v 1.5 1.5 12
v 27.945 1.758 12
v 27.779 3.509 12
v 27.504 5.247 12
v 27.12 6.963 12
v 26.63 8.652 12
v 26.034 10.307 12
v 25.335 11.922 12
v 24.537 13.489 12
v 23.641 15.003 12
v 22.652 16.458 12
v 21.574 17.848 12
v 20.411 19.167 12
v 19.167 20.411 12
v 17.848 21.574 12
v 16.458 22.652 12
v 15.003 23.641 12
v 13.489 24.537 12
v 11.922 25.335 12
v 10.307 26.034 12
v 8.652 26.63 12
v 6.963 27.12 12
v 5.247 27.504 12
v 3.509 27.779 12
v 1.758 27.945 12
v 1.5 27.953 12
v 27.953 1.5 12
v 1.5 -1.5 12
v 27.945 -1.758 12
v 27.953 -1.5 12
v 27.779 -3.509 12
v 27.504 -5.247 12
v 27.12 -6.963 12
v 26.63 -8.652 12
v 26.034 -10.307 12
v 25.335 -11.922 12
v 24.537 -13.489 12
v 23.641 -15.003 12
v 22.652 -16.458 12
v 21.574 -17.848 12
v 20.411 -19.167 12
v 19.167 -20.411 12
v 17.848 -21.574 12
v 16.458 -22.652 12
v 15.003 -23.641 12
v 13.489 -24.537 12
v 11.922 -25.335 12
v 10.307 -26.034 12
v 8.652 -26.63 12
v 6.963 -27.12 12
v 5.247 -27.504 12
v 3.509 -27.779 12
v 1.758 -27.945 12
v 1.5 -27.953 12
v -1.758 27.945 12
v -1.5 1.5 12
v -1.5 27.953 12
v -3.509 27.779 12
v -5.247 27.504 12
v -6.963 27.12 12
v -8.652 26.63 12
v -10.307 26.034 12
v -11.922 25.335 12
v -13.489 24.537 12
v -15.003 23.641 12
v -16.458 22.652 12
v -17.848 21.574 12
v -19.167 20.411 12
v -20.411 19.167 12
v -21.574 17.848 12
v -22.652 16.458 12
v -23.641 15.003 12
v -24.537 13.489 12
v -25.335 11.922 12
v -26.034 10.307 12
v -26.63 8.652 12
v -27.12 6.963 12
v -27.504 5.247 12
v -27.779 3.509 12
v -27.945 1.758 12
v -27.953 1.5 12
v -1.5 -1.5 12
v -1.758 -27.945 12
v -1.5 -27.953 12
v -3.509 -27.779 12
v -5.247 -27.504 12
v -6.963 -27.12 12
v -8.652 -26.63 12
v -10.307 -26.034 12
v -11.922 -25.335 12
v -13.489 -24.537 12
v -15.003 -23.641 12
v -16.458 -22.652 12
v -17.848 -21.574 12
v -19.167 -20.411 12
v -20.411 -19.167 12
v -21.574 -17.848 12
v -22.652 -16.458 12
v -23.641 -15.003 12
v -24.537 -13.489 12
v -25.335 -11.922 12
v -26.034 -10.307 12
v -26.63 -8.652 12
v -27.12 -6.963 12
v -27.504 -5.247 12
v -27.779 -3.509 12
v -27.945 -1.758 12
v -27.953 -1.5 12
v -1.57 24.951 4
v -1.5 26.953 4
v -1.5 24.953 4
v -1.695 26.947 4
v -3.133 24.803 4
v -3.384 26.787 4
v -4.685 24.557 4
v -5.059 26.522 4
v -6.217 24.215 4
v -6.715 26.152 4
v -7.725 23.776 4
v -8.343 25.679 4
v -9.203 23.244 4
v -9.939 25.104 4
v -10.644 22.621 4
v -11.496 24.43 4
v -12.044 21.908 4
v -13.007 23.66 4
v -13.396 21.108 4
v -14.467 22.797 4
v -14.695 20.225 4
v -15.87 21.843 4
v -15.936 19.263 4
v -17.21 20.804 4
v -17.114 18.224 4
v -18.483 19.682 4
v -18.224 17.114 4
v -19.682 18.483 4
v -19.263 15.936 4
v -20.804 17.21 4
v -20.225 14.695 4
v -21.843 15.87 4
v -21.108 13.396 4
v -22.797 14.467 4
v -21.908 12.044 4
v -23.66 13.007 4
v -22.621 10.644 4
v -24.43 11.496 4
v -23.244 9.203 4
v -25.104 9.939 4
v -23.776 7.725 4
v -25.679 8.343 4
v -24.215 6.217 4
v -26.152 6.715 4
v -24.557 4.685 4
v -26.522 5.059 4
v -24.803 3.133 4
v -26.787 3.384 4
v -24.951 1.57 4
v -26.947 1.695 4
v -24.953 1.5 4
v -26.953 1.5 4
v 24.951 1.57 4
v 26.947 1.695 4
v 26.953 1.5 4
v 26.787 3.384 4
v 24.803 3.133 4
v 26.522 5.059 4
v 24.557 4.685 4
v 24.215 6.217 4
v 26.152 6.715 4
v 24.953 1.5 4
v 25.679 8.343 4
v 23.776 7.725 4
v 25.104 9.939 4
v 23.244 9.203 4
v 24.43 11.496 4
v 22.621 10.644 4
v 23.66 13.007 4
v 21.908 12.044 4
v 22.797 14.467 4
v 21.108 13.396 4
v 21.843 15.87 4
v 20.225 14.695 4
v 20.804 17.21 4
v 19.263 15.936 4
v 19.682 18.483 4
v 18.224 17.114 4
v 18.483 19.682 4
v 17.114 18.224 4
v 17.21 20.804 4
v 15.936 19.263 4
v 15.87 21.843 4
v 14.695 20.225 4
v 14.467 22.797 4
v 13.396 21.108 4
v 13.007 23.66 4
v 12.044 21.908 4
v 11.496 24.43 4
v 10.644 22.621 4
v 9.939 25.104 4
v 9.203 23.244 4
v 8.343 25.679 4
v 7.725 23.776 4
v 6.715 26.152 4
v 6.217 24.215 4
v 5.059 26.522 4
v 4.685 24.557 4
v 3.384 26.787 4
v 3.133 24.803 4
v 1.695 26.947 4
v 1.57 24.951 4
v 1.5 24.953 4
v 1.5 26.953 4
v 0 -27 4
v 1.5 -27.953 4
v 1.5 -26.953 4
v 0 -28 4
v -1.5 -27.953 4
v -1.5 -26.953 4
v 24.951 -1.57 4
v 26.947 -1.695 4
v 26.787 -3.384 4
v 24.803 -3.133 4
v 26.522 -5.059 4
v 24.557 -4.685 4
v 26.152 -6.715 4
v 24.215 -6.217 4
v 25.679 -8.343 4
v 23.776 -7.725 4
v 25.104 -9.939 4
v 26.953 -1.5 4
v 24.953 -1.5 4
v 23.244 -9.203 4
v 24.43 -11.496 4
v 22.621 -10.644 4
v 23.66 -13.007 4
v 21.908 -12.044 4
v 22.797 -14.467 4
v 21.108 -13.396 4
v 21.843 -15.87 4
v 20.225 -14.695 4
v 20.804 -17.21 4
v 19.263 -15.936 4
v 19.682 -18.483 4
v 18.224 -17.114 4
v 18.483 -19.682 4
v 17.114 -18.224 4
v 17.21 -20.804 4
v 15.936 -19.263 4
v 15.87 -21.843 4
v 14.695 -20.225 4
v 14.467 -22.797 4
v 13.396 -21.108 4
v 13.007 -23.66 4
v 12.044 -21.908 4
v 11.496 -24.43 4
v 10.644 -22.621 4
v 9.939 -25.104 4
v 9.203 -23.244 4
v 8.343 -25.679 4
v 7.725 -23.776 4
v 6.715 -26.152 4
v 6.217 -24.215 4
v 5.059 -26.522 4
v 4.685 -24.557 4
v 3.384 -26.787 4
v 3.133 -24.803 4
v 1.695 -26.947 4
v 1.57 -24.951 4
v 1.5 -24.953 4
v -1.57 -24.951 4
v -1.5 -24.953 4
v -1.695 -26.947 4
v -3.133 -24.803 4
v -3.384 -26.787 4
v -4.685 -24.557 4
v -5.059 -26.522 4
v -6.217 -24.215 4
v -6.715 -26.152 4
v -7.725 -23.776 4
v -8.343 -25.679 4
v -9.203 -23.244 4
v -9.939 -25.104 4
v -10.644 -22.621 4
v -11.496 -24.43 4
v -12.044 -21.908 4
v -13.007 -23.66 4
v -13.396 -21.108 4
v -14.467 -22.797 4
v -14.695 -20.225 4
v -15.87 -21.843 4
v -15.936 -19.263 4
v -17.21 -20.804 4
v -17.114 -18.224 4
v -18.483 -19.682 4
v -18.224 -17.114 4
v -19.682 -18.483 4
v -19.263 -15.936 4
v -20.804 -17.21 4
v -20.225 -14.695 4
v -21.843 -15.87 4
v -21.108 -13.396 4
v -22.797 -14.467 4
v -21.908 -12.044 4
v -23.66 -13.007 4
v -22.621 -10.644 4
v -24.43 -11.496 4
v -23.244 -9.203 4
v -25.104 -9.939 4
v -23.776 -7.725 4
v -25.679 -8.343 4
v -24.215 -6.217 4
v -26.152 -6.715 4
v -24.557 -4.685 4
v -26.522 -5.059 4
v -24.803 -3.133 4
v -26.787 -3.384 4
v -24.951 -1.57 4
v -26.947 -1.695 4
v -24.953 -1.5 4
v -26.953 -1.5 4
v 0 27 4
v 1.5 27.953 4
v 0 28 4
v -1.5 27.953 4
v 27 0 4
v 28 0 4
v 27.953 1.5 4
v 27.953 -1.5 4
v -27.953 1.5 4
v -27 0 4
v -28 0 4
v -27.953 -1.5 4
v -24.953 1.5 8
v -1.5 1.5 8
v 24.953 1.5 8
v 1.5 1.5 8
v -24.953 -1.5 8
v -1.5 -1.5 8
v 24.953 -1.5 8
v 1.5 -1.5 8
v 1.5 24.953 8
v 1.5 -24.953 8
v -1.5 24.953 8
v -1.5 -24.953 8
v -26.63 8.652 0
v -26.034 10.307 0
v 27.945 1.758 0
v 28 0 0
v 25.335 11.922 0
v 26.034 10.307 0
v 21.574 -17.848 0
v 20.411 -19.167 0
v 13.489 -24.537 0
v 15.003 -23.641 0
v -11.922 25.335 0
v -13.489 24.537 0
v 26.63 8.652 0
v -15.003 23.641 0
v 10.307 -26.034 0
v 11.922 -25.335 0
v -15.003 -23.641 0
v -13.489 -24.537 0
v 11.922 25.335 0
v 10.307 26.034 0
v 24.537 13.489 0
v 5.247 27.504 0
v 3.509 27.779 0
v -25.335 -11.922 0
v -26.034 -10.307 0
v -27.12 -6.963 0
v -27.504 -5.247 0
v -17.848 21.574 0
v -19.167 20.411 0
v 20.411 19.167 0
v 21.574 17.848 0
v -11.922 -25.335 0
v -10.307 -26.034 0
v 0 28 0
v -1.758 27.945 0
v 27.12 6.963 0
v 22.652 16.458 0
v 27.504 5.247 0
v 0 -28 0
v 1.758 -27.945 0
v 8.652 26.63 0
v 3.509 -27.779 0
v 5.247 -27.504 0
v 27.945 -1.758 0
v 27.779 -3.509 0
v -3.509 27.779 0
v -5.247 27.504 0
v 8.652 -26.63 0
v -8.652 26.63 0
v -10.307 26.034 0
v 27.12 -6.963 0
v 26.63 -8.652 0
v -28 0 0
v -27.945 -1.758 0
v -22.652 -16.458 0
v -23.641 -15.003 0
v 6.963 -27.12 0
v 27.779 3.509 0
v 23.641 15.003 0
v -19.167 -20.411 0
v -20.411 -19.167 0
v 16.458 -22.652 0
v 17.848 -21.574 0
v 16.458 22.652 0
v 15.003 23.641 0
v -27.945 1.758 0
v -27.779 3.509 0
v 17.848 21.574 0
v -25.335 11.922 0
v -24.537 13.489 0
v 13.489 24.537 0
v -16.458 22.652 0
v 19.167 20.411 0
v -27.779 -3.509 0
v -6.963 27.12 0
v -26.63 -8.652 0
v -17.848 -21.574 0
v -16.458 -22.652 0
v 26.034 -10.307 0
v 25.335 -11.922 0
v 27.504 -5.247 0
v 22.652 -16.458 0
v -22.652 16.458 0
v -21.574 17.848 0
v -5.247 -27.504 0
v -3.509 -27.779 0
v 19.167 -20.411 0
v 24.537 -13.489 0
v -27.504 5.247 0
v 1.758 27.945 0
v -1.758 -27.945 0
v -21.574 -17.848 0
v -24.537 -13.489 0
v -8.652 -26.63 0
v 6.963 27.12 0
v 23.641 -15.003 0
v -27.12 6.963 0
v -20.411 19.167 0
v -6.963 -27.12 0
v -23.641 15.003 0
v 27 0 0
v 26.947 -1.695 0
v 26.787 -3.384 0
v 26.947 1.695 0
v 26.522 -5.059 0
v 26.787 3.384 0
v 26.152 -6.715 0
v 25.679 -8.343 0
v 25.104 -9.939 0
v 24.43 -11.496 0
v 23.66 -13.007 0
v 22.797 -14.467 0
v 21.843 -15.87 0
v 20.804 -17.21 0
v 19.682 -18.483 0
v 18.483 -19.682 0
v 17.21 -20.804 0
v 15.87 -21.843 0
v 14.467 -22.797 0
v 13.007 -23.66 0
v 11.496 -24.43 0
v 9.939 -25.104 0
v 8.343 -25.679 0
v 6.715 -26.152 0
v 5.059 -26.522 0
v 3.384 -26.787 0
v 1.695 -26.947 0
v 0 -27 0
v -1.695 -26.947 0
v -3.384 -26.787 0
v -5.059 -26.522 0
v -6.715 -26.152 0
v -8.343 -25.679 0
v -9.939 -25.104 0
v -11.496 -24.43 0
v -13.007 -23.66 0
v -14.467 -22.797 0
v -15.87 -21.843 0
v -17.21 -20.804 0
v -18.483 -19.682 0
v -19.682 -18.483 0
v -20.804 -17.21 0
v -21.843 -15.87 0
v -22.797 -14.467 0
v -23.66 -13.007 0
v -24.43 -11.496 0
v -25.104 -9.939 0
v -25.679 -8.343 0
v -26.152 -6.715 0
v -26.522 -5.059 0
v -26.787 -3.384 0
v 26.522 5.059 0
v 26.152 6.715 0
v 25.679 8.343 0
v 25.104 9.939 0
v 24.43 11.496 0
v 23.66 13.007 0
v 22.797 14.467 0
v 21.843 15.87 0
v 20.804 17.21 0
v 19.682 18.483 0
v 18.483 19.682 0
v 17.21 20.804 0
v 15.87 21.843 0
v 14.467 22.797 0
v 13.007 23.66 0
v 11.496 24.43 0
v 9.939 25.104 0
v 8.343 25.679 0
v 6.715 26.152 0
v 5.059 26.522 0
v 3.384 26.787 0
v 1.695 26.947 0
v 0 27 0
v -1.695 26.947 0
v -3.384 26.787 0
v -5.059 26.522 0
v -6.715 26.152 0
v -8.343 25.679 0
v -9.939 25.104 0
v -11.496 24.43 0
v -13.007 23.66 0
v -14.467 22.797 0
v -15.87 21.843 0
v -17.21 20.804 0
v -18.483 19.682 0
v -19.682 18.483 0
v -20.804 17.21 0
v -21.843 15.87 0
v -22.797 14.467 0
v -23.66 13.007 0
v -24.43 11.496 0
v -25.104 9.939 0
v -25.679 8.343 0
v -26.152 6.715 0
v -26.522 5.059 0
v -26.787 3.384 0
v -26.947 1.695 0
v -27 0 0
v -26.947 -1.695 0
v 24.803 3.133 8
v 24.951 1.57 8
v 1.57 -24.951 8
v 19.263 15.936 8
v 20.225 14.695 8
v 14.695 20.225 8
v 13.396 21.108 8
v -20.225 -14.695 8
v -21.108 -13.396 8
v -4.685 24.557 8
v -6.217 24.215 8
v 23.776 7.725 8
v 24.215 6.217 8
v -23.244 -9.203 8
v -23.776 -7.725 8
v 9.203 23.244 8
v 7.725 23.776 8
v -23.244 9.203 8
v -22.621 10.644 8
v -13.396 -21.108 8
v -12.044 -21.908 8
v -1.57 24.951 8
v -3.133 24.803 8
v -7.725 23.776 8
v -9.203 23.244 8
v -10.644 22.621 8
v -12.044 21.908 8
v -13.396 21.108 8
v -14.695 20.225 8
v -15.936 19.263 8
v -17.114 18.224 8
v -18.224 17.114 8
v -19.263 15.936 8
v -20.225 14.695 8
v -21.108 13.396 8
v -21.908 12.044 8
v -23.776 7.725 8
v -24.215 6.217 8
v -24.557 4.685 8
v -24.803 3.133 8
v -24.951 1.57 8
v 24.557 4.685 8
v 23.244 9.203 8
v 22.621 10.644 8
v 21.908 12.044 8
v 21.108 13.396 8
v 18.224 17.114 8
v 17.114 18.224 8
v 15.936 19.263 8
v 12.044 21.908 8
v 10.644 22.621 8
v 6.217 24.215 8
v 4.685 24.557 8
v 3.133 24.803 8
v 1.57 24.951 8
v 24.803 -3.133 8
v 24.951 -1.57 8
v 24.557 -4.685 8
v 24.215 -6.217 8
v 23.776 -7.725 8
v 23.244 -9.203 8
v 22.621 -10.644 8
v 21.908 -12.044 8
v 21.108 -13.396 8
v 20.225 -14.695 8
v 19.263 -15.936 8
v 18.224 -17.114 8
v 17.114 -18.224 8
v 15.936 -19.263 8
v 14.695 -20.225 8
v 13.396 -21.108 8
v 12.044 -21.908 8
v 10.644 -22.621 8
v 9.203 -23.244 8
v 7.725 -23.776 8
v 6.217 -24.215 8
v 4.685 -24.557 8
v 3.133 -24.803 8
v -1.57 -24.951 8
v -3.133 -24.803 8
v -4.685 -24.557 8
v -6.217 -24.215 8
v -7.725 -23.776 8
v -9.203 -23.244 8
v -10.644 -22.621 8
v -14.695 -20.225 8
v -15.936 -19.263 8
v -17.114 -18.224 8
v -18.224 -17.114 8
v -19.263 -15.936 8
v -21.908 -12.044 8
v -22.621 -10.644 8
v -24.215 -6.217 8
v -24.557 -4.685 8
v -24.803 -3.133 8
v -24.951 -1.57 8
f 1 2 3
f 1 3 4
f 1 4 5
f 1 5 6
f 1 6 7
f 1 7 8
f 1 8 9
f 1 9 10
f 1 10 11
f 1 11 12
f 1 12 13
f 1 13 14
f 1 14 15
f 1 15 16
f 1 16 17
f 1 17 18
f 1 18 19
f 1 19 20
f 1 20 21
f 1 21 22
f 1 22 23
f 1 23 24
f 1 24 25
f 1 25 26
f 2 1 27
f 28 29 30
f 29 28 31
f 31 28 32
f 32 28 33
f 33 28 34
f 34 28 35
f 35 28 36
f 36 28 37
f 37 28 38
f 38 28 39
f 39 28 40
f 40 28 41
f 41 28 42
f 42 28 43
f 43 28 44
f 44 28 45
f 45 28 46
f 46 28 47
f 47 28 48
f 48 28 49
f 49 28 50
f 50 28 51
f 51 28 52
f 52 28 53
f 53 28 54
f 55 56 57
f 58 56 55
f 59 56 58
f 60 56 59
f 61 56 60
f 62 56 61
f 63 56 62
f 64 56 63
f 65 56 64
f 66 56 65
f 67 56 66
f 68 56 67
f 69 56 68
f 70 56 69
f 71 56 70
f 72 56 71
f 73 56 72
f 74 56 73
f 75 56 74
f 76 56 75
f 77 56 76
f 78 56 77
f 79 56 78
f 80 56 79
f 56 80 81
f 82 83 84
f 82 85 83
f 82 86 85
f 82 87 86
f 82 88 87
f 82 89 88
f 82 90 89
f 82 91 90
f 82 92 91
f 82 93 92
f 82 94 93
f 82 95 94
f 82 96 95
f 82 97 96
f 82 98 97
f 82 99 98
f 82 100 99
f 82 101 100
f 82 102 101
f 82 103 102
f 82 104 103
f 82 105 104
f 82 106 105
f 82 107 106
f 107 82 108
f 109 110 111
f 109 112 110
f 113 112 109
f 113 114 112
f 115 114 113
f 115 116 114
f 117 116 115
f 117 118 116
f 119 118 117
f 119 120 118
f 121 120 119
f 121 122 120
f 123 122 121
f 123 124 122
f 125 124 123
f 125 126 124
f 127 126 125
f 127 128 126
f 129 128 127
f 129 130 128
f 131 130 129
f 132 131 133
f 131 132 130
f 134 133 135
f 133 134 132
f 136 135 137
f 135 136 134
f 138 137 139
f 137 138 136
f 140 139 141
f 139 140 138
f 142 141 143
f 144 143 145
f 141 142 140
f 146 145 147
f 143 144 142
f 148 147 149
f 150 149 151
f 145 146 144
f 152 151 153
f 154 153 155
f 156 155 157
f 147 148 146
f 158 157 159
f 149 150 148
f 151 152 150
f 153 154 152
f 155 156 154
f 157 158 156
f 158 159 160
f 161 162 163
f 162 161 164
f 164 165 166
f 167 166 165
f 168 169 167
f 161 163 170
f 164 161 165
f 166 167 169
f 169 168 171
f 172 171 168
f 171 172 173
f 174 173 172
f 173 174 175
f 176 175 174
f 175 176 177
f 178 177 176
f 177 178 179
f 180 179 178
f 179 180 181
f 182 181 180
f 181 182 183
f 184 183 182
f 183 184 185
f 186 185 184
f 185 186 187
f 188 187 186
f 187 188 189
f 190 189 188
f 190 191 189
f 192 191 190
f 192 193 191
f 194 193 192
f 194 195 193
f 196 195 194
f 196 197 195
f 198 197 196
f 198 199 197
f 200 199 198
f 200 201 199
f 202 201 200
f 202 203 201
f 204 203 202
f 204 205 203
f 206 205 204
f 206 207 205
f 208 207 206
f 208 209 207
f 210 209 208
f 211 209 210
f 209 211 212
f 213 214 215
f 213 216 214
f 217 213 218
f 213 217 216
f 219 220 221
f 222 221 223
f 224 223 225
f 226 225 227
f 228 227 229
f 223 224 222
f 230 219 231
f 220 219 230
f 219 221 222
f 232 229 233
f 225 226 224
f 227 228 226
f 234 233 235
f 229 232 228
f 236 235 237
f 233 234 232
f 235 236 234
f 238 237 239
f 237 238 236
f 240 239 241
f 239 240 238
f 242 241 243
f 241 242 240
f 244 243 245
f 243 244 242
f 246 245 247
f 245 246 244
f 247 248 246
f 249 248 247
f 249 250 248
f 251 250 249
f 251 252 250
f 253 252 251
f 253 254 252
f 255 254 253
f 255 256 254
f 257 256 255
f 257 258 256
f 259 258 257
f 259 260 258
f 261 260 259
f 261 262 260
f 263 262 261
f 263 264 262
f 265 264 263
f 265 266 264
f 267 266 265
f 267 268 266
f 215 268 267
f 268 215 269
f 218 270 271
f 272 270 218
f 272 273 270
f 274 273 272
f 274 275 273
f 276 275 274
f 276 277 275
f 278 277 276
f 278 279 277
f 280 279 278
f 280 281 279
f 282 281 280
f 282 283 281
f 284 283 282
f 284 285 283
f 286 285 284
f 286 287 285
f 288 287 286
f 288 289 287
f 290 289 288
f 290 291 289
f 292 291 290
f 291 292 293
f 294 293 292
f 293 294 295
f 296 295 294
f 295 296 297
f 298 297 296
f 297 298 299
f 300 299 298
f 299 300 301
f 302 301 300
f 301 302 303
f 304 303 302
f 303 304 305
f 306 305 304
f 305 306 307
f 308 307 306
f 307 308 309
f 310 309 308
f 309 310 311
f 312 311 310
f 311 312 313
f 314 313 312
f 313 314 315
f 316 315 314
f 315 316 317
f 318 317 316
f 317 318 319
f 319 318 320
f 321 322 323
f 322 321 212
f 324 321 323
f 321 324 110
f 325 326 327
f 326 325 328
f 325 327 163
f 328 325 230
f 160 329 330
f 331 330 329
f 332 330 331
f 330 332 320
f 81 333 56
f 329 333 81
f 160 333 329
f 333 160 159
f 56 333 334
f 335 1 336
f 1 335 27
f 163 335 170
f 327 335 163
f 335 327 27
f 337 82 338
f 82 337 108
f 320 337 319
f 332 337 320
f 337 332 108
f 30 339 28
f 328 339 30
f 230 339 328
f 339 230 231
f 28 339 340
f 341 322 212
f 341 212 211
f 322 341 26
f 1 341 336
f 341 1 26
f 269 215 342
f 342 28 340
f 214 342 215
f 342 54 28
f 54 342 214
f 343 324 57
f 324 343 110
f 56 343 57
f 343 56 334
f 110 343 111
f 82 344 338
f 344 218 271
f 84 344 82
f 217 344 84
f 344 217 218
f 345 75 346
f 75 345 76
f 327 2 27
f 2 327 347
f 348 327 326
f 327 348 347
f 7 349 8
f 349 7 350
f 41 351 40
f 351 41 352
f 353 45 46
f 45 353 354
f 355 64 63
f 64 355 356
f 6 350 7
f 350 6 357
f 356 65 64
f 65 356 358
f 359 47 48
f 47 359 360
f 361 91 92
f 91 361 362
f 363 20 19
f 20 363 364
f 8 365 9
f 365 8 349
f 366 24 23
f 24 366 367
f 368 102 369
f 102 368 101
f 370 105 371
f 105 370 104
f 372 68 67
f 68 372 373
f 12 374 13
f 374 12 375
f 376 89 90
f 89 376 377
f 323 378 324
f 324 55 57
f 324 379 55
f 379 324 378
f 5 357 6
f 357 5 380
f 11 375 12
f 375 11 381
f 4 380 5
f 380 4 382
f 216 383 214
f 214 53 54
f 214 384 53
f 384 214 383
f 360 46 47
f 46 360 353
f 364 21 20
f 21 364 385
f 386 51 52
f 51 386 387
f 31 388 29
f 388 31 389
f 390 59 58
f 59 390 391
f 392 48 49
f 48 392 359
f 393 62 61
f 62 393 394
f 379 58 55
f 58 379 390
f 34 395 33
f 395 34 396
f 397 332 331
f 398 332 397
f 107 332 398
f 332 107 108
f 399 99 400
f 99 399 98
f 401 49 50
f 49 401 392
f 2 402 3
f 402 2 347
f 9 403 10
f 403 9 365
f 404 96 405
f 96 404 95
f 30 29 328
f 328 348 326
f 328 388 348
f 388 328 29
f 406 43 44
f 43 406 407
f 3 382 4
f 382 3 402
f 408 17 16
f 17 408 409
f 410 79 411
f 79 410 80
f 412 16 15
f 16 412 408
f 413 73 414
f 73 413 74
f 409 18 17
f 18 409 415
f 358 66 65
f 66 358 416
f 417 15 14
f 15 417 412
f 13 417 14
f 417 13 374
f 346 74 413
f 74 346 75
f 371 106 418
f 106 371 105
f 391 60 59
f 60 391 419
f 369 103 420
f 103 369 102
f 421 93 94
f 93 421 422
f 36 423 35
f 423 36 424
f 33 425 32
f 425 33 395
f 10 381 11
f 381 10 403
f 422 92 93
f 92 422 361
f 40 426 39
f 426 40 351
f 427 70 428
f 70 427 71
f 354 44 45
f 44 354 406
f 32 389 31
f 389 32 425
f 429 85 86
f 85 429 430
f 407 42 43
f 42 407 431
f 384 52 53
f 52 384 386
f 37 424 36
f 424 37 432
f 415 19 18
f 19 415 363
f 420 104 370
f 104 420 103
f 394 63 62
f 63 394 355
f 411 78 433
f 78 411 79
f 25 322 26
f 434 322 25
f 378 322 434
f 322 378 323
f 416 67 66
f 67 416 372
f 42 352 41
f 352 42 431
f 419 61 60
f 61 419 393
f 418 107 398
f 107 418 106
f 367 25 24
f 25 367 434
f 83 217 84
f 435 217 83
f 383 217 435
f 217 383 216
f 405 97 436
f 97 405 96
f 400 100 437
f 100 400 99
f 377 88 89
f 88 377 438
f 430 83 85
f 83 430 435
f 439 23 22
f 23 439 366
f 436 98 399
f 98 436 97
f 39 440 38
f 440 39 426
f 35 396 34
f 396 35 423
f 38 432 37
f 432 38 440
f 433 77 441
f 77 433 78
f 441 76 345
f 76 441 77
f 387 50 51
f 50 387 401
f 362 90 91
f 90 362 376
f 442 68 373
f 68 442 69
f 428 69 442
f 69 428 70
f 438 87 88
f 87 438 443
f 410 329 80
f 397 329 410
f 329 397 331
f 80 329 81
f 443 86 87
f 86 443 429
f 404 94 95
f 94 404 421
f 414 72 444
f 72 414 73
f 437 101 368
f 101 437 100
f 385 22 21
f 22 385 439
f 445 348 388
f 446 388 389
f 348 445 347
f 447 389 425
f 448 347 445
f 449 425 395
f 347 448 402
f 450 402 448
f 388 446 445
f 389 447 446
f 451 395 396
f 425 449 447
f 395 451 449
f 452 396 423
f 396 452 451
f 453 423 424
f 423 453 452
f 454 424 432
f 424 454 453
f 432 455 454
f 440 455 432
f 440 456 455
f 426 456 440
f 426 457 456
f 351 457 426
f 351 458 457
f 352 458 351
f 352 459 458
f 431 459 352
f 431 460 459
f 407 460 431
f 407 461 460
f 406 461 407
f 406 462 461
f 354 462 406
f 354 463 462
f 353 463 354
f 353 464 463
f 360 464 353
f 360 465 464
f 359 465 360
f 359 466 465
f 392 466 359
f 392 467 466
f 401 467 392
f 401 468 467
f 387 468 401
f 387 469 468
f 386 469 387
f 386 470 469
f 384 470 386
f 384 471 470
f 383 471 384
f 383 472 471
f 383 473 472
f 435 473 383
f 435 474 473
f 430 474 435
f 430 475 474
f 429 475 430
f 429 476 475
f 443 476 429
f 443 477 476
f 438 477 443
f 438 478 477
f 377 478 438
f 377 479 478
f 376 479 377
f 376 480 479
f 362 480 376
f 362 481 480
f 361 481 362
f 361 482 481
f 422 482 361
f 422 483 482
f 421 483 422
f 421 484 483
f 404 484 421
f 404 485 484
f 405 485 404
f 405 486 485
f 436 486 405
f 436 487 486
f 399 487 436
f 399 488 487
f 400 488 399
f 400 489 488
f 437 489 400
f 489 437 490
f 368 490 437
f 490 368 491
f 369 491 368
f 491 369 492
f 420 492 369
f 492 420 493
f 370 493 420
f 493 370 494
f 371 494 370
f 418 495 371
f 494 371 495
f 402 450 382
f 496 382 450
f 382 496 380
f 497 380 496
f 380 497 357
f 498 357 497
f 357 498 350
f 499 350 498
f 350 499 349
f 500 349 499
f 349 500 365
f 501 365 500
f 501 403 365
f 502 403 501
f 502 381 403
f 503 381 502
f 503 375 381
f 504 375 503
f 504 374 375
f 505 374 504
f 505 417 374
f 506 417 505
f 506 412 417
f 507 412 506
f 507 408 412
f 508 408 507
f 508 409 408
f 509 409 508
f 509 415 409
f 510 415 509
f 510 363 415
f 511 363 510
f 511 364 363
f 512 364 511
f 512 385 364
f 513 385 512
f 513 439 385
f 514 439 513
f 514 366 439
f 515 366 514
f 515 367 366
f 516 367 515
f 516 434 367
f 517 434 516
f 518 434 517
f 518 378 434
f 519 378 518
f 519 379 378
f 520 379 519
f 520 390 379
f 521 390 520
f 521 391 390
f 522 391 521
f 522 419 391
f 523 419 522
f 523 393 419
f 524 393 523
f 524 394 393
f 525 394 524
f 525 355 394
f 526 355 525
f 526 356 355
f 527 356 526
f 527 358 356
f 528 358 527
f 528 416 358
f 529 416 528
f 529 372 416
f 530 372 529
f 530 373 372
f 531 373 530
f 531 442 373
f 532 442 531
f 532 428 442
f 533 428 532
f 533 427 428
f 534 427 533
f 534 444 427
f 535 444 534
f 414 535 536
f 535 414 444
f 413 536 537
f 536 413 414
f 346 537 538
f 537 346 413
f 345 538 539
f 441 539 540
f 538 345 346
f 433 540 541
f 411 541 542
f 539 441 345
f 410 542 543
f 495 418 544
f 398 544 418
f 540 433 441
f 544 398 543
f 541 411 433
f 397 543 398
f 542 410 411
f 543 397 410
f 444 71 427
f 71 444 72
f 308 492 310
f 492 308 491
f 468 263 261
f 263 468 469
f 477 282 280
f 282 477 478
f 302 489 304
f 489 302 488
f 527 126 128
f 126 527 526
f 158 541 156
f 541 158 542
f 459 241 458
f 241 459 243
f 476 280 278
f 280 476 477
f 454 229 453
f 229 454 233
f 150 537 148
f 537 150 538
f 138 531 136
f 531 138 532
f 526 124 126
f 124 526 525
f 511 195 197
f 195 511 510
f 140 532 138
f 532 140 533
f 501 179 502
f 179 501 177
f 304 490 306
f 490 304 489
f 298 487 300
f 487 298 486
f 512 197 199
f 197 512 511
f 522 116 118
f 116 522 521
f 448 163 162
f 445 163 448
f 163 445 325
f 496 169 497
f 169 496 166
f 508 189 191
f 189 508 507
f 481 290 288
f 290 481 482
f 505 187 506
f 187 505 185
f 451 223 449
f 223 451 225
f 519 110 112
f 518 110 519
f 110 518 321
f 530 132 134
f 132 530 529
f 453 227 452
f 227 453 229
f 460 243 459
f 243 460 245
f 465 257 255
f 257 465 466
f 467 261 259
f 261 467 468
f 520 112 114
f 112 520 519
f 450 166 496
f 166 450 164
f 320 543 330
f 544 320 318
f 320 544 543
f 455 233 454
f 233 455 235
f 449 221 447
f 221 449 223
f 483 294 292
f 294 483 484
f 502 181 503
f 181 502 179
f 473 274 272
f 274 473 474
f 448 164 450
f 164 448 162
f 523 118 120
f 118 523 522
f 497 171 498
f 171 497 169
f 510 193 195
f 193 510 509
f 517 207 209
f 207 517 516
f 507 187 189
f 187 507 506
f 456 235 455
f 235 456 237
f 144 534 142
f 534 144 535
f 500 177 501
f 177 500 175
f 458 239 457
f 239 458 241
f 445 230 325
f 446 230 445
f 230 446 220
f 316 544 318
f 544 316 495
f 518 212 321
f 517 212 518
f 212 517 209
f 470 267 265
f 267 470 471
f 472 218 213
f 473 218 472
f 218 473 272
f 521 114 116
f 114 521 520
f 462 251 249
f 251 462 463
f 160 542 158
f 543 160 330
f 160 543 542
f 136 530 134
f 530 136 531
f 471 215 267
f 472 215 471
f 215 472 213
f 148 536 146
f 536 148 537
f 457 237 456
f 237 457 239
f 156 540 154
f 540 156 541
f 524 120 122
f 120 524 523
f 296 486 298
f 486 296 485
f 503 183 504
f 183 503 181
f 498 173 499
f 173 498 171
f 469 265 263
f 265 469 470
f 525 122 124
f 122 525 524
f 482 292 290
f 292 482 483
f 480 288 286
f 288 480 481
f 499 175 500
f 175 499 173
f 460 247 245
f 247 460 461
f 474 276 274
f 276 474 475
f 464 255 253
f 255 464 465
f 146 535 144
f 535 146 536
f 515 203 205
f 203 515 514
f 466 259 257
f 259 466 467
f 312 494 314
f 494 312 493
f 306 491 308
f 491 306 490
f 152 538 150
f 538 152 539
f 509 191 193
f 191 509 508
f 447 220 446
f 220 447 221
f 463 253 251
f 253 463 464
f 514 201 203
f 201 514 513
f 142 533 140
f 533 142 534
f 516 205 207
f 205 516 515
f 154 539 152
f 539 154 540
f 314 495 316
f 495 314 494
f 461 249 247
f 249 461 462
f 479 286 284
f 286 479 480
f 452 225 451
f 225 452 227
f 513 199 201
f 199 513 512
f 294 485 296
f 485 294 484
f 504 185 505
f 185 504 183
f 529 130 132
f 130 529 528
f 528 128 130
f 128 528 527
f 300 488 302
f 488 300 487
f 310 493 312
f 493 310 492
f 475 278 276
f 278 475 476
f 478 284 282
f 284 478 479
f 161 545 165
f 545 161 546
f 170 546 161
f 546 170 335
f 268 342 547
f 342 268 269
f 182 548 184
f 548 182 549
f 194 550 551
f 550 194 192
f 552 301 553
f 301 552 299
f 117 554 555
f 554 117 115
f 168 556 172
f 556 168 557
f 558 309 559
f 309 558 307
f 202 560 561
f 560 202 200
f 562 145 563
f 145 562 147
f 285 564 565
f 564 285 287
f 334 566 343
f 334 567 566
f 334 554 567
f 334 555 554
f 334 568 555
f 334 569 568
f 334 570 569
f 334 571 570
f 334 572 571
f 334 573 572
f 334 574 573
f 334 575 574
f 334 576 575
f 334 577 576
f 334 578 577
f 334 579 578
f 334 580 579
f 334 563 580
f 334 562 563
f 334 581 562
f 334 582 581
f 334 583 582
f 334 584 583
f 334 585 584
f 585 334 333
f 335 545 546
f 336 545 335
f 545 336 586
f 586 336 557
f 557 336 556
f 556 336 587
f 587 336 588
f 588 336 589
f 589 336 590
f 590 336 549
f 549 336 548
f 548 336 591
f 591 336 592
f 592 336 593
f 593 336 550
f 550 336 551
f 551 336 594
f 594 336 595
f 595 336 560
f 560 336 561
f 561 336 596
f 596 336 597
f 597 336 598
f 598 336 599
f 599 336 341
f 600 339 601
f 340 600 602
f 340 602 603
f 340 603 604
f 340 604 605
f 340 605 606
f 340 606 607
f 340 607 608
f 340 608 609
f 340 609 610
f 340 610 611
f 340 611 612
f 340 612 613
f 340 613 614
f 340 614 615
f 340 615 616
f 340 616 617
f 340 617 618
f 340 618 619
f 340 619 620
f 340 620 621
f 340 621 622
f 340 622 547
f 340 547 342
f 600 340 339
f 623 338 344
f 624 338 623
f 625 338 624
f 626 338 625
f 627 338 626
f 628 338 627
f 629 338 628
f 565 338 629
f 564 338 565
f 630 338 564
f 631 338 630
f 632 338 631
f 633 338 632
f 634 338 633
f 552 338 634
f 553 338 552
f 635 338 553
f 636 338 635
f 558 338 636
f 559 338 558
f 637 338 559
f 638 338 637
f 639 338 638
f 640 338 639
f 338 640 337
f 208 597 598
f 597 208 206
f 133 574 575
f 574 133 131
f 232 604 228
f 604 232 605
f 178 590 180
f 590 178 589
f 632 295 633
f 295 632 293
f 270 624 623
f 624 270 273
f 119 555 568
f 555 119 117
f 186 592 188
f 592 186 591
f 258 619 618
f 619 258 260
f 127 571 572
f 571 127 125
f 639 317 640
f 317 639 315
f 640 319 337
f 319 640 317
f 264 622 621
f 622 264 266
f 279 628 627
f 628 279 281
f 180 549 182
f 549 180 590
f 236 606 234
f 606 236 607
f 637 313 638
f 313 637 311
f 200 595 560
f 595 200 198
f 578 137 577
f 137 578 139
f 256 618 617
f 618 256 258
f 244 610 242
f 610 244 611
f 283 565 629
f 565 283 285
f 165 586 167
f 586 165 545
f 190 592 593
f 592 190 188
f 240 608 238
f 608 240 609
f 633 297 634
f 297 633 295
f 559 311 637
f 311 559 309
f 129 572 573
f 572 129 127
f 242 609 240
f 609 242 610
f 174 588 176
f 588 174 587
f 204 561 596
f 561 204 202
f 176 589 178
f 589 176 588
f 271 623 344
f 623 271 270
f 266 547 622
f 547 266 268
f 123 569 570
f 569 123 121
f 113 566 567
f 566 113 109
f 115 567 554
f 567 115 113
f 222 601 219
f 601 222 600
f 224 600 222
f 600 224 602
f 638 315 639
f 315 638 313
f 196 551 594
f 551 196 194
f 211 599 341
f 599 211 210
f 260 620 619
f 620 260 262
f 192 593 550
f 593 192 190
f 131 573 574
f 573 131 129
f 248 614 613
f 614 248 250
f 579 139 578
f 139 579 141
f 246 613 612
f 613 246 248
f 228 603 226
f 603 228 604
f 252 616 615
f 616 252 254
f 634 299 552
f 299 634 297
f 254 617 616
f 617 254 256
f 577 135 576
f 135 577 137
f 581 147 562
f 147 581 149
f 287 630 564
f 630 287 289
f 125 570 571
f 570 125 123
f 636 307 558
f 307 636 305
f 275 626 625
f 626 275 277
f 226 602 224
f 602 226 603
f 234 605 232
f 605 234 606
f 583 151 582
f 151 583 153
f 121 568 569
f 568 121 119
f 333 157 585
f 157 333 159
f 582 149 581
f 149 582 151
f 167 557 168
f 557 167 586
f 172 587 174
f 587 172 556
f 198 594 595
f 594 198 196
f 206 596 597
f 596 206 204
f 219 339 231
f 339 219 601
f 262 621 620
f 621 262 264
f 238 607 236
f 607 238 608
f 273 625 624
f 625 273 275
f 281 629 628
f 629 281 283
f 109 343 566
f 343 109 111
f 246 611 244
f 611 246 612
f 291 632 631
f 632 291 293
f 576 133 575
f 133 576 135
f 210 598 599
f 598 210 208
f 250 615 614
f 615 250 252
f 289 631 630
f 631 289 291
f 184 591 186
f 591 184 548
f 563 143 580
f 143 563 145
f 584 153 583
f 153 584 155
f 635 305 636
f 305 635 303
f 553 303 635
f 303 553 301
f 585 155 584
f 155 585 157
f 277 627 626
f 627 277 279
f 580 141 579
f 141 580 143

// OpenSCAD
$fn = 100;
difference() {
    cylinder(h = 12, d = 56);
    cylinder(h = 4, d = 54);
    cylinder(h = 8, d = 50);
    translate([0, 0, 8]) {
        cube([56, 3, 8], true);
        cube([3, 56, 8], true);
    }
}
